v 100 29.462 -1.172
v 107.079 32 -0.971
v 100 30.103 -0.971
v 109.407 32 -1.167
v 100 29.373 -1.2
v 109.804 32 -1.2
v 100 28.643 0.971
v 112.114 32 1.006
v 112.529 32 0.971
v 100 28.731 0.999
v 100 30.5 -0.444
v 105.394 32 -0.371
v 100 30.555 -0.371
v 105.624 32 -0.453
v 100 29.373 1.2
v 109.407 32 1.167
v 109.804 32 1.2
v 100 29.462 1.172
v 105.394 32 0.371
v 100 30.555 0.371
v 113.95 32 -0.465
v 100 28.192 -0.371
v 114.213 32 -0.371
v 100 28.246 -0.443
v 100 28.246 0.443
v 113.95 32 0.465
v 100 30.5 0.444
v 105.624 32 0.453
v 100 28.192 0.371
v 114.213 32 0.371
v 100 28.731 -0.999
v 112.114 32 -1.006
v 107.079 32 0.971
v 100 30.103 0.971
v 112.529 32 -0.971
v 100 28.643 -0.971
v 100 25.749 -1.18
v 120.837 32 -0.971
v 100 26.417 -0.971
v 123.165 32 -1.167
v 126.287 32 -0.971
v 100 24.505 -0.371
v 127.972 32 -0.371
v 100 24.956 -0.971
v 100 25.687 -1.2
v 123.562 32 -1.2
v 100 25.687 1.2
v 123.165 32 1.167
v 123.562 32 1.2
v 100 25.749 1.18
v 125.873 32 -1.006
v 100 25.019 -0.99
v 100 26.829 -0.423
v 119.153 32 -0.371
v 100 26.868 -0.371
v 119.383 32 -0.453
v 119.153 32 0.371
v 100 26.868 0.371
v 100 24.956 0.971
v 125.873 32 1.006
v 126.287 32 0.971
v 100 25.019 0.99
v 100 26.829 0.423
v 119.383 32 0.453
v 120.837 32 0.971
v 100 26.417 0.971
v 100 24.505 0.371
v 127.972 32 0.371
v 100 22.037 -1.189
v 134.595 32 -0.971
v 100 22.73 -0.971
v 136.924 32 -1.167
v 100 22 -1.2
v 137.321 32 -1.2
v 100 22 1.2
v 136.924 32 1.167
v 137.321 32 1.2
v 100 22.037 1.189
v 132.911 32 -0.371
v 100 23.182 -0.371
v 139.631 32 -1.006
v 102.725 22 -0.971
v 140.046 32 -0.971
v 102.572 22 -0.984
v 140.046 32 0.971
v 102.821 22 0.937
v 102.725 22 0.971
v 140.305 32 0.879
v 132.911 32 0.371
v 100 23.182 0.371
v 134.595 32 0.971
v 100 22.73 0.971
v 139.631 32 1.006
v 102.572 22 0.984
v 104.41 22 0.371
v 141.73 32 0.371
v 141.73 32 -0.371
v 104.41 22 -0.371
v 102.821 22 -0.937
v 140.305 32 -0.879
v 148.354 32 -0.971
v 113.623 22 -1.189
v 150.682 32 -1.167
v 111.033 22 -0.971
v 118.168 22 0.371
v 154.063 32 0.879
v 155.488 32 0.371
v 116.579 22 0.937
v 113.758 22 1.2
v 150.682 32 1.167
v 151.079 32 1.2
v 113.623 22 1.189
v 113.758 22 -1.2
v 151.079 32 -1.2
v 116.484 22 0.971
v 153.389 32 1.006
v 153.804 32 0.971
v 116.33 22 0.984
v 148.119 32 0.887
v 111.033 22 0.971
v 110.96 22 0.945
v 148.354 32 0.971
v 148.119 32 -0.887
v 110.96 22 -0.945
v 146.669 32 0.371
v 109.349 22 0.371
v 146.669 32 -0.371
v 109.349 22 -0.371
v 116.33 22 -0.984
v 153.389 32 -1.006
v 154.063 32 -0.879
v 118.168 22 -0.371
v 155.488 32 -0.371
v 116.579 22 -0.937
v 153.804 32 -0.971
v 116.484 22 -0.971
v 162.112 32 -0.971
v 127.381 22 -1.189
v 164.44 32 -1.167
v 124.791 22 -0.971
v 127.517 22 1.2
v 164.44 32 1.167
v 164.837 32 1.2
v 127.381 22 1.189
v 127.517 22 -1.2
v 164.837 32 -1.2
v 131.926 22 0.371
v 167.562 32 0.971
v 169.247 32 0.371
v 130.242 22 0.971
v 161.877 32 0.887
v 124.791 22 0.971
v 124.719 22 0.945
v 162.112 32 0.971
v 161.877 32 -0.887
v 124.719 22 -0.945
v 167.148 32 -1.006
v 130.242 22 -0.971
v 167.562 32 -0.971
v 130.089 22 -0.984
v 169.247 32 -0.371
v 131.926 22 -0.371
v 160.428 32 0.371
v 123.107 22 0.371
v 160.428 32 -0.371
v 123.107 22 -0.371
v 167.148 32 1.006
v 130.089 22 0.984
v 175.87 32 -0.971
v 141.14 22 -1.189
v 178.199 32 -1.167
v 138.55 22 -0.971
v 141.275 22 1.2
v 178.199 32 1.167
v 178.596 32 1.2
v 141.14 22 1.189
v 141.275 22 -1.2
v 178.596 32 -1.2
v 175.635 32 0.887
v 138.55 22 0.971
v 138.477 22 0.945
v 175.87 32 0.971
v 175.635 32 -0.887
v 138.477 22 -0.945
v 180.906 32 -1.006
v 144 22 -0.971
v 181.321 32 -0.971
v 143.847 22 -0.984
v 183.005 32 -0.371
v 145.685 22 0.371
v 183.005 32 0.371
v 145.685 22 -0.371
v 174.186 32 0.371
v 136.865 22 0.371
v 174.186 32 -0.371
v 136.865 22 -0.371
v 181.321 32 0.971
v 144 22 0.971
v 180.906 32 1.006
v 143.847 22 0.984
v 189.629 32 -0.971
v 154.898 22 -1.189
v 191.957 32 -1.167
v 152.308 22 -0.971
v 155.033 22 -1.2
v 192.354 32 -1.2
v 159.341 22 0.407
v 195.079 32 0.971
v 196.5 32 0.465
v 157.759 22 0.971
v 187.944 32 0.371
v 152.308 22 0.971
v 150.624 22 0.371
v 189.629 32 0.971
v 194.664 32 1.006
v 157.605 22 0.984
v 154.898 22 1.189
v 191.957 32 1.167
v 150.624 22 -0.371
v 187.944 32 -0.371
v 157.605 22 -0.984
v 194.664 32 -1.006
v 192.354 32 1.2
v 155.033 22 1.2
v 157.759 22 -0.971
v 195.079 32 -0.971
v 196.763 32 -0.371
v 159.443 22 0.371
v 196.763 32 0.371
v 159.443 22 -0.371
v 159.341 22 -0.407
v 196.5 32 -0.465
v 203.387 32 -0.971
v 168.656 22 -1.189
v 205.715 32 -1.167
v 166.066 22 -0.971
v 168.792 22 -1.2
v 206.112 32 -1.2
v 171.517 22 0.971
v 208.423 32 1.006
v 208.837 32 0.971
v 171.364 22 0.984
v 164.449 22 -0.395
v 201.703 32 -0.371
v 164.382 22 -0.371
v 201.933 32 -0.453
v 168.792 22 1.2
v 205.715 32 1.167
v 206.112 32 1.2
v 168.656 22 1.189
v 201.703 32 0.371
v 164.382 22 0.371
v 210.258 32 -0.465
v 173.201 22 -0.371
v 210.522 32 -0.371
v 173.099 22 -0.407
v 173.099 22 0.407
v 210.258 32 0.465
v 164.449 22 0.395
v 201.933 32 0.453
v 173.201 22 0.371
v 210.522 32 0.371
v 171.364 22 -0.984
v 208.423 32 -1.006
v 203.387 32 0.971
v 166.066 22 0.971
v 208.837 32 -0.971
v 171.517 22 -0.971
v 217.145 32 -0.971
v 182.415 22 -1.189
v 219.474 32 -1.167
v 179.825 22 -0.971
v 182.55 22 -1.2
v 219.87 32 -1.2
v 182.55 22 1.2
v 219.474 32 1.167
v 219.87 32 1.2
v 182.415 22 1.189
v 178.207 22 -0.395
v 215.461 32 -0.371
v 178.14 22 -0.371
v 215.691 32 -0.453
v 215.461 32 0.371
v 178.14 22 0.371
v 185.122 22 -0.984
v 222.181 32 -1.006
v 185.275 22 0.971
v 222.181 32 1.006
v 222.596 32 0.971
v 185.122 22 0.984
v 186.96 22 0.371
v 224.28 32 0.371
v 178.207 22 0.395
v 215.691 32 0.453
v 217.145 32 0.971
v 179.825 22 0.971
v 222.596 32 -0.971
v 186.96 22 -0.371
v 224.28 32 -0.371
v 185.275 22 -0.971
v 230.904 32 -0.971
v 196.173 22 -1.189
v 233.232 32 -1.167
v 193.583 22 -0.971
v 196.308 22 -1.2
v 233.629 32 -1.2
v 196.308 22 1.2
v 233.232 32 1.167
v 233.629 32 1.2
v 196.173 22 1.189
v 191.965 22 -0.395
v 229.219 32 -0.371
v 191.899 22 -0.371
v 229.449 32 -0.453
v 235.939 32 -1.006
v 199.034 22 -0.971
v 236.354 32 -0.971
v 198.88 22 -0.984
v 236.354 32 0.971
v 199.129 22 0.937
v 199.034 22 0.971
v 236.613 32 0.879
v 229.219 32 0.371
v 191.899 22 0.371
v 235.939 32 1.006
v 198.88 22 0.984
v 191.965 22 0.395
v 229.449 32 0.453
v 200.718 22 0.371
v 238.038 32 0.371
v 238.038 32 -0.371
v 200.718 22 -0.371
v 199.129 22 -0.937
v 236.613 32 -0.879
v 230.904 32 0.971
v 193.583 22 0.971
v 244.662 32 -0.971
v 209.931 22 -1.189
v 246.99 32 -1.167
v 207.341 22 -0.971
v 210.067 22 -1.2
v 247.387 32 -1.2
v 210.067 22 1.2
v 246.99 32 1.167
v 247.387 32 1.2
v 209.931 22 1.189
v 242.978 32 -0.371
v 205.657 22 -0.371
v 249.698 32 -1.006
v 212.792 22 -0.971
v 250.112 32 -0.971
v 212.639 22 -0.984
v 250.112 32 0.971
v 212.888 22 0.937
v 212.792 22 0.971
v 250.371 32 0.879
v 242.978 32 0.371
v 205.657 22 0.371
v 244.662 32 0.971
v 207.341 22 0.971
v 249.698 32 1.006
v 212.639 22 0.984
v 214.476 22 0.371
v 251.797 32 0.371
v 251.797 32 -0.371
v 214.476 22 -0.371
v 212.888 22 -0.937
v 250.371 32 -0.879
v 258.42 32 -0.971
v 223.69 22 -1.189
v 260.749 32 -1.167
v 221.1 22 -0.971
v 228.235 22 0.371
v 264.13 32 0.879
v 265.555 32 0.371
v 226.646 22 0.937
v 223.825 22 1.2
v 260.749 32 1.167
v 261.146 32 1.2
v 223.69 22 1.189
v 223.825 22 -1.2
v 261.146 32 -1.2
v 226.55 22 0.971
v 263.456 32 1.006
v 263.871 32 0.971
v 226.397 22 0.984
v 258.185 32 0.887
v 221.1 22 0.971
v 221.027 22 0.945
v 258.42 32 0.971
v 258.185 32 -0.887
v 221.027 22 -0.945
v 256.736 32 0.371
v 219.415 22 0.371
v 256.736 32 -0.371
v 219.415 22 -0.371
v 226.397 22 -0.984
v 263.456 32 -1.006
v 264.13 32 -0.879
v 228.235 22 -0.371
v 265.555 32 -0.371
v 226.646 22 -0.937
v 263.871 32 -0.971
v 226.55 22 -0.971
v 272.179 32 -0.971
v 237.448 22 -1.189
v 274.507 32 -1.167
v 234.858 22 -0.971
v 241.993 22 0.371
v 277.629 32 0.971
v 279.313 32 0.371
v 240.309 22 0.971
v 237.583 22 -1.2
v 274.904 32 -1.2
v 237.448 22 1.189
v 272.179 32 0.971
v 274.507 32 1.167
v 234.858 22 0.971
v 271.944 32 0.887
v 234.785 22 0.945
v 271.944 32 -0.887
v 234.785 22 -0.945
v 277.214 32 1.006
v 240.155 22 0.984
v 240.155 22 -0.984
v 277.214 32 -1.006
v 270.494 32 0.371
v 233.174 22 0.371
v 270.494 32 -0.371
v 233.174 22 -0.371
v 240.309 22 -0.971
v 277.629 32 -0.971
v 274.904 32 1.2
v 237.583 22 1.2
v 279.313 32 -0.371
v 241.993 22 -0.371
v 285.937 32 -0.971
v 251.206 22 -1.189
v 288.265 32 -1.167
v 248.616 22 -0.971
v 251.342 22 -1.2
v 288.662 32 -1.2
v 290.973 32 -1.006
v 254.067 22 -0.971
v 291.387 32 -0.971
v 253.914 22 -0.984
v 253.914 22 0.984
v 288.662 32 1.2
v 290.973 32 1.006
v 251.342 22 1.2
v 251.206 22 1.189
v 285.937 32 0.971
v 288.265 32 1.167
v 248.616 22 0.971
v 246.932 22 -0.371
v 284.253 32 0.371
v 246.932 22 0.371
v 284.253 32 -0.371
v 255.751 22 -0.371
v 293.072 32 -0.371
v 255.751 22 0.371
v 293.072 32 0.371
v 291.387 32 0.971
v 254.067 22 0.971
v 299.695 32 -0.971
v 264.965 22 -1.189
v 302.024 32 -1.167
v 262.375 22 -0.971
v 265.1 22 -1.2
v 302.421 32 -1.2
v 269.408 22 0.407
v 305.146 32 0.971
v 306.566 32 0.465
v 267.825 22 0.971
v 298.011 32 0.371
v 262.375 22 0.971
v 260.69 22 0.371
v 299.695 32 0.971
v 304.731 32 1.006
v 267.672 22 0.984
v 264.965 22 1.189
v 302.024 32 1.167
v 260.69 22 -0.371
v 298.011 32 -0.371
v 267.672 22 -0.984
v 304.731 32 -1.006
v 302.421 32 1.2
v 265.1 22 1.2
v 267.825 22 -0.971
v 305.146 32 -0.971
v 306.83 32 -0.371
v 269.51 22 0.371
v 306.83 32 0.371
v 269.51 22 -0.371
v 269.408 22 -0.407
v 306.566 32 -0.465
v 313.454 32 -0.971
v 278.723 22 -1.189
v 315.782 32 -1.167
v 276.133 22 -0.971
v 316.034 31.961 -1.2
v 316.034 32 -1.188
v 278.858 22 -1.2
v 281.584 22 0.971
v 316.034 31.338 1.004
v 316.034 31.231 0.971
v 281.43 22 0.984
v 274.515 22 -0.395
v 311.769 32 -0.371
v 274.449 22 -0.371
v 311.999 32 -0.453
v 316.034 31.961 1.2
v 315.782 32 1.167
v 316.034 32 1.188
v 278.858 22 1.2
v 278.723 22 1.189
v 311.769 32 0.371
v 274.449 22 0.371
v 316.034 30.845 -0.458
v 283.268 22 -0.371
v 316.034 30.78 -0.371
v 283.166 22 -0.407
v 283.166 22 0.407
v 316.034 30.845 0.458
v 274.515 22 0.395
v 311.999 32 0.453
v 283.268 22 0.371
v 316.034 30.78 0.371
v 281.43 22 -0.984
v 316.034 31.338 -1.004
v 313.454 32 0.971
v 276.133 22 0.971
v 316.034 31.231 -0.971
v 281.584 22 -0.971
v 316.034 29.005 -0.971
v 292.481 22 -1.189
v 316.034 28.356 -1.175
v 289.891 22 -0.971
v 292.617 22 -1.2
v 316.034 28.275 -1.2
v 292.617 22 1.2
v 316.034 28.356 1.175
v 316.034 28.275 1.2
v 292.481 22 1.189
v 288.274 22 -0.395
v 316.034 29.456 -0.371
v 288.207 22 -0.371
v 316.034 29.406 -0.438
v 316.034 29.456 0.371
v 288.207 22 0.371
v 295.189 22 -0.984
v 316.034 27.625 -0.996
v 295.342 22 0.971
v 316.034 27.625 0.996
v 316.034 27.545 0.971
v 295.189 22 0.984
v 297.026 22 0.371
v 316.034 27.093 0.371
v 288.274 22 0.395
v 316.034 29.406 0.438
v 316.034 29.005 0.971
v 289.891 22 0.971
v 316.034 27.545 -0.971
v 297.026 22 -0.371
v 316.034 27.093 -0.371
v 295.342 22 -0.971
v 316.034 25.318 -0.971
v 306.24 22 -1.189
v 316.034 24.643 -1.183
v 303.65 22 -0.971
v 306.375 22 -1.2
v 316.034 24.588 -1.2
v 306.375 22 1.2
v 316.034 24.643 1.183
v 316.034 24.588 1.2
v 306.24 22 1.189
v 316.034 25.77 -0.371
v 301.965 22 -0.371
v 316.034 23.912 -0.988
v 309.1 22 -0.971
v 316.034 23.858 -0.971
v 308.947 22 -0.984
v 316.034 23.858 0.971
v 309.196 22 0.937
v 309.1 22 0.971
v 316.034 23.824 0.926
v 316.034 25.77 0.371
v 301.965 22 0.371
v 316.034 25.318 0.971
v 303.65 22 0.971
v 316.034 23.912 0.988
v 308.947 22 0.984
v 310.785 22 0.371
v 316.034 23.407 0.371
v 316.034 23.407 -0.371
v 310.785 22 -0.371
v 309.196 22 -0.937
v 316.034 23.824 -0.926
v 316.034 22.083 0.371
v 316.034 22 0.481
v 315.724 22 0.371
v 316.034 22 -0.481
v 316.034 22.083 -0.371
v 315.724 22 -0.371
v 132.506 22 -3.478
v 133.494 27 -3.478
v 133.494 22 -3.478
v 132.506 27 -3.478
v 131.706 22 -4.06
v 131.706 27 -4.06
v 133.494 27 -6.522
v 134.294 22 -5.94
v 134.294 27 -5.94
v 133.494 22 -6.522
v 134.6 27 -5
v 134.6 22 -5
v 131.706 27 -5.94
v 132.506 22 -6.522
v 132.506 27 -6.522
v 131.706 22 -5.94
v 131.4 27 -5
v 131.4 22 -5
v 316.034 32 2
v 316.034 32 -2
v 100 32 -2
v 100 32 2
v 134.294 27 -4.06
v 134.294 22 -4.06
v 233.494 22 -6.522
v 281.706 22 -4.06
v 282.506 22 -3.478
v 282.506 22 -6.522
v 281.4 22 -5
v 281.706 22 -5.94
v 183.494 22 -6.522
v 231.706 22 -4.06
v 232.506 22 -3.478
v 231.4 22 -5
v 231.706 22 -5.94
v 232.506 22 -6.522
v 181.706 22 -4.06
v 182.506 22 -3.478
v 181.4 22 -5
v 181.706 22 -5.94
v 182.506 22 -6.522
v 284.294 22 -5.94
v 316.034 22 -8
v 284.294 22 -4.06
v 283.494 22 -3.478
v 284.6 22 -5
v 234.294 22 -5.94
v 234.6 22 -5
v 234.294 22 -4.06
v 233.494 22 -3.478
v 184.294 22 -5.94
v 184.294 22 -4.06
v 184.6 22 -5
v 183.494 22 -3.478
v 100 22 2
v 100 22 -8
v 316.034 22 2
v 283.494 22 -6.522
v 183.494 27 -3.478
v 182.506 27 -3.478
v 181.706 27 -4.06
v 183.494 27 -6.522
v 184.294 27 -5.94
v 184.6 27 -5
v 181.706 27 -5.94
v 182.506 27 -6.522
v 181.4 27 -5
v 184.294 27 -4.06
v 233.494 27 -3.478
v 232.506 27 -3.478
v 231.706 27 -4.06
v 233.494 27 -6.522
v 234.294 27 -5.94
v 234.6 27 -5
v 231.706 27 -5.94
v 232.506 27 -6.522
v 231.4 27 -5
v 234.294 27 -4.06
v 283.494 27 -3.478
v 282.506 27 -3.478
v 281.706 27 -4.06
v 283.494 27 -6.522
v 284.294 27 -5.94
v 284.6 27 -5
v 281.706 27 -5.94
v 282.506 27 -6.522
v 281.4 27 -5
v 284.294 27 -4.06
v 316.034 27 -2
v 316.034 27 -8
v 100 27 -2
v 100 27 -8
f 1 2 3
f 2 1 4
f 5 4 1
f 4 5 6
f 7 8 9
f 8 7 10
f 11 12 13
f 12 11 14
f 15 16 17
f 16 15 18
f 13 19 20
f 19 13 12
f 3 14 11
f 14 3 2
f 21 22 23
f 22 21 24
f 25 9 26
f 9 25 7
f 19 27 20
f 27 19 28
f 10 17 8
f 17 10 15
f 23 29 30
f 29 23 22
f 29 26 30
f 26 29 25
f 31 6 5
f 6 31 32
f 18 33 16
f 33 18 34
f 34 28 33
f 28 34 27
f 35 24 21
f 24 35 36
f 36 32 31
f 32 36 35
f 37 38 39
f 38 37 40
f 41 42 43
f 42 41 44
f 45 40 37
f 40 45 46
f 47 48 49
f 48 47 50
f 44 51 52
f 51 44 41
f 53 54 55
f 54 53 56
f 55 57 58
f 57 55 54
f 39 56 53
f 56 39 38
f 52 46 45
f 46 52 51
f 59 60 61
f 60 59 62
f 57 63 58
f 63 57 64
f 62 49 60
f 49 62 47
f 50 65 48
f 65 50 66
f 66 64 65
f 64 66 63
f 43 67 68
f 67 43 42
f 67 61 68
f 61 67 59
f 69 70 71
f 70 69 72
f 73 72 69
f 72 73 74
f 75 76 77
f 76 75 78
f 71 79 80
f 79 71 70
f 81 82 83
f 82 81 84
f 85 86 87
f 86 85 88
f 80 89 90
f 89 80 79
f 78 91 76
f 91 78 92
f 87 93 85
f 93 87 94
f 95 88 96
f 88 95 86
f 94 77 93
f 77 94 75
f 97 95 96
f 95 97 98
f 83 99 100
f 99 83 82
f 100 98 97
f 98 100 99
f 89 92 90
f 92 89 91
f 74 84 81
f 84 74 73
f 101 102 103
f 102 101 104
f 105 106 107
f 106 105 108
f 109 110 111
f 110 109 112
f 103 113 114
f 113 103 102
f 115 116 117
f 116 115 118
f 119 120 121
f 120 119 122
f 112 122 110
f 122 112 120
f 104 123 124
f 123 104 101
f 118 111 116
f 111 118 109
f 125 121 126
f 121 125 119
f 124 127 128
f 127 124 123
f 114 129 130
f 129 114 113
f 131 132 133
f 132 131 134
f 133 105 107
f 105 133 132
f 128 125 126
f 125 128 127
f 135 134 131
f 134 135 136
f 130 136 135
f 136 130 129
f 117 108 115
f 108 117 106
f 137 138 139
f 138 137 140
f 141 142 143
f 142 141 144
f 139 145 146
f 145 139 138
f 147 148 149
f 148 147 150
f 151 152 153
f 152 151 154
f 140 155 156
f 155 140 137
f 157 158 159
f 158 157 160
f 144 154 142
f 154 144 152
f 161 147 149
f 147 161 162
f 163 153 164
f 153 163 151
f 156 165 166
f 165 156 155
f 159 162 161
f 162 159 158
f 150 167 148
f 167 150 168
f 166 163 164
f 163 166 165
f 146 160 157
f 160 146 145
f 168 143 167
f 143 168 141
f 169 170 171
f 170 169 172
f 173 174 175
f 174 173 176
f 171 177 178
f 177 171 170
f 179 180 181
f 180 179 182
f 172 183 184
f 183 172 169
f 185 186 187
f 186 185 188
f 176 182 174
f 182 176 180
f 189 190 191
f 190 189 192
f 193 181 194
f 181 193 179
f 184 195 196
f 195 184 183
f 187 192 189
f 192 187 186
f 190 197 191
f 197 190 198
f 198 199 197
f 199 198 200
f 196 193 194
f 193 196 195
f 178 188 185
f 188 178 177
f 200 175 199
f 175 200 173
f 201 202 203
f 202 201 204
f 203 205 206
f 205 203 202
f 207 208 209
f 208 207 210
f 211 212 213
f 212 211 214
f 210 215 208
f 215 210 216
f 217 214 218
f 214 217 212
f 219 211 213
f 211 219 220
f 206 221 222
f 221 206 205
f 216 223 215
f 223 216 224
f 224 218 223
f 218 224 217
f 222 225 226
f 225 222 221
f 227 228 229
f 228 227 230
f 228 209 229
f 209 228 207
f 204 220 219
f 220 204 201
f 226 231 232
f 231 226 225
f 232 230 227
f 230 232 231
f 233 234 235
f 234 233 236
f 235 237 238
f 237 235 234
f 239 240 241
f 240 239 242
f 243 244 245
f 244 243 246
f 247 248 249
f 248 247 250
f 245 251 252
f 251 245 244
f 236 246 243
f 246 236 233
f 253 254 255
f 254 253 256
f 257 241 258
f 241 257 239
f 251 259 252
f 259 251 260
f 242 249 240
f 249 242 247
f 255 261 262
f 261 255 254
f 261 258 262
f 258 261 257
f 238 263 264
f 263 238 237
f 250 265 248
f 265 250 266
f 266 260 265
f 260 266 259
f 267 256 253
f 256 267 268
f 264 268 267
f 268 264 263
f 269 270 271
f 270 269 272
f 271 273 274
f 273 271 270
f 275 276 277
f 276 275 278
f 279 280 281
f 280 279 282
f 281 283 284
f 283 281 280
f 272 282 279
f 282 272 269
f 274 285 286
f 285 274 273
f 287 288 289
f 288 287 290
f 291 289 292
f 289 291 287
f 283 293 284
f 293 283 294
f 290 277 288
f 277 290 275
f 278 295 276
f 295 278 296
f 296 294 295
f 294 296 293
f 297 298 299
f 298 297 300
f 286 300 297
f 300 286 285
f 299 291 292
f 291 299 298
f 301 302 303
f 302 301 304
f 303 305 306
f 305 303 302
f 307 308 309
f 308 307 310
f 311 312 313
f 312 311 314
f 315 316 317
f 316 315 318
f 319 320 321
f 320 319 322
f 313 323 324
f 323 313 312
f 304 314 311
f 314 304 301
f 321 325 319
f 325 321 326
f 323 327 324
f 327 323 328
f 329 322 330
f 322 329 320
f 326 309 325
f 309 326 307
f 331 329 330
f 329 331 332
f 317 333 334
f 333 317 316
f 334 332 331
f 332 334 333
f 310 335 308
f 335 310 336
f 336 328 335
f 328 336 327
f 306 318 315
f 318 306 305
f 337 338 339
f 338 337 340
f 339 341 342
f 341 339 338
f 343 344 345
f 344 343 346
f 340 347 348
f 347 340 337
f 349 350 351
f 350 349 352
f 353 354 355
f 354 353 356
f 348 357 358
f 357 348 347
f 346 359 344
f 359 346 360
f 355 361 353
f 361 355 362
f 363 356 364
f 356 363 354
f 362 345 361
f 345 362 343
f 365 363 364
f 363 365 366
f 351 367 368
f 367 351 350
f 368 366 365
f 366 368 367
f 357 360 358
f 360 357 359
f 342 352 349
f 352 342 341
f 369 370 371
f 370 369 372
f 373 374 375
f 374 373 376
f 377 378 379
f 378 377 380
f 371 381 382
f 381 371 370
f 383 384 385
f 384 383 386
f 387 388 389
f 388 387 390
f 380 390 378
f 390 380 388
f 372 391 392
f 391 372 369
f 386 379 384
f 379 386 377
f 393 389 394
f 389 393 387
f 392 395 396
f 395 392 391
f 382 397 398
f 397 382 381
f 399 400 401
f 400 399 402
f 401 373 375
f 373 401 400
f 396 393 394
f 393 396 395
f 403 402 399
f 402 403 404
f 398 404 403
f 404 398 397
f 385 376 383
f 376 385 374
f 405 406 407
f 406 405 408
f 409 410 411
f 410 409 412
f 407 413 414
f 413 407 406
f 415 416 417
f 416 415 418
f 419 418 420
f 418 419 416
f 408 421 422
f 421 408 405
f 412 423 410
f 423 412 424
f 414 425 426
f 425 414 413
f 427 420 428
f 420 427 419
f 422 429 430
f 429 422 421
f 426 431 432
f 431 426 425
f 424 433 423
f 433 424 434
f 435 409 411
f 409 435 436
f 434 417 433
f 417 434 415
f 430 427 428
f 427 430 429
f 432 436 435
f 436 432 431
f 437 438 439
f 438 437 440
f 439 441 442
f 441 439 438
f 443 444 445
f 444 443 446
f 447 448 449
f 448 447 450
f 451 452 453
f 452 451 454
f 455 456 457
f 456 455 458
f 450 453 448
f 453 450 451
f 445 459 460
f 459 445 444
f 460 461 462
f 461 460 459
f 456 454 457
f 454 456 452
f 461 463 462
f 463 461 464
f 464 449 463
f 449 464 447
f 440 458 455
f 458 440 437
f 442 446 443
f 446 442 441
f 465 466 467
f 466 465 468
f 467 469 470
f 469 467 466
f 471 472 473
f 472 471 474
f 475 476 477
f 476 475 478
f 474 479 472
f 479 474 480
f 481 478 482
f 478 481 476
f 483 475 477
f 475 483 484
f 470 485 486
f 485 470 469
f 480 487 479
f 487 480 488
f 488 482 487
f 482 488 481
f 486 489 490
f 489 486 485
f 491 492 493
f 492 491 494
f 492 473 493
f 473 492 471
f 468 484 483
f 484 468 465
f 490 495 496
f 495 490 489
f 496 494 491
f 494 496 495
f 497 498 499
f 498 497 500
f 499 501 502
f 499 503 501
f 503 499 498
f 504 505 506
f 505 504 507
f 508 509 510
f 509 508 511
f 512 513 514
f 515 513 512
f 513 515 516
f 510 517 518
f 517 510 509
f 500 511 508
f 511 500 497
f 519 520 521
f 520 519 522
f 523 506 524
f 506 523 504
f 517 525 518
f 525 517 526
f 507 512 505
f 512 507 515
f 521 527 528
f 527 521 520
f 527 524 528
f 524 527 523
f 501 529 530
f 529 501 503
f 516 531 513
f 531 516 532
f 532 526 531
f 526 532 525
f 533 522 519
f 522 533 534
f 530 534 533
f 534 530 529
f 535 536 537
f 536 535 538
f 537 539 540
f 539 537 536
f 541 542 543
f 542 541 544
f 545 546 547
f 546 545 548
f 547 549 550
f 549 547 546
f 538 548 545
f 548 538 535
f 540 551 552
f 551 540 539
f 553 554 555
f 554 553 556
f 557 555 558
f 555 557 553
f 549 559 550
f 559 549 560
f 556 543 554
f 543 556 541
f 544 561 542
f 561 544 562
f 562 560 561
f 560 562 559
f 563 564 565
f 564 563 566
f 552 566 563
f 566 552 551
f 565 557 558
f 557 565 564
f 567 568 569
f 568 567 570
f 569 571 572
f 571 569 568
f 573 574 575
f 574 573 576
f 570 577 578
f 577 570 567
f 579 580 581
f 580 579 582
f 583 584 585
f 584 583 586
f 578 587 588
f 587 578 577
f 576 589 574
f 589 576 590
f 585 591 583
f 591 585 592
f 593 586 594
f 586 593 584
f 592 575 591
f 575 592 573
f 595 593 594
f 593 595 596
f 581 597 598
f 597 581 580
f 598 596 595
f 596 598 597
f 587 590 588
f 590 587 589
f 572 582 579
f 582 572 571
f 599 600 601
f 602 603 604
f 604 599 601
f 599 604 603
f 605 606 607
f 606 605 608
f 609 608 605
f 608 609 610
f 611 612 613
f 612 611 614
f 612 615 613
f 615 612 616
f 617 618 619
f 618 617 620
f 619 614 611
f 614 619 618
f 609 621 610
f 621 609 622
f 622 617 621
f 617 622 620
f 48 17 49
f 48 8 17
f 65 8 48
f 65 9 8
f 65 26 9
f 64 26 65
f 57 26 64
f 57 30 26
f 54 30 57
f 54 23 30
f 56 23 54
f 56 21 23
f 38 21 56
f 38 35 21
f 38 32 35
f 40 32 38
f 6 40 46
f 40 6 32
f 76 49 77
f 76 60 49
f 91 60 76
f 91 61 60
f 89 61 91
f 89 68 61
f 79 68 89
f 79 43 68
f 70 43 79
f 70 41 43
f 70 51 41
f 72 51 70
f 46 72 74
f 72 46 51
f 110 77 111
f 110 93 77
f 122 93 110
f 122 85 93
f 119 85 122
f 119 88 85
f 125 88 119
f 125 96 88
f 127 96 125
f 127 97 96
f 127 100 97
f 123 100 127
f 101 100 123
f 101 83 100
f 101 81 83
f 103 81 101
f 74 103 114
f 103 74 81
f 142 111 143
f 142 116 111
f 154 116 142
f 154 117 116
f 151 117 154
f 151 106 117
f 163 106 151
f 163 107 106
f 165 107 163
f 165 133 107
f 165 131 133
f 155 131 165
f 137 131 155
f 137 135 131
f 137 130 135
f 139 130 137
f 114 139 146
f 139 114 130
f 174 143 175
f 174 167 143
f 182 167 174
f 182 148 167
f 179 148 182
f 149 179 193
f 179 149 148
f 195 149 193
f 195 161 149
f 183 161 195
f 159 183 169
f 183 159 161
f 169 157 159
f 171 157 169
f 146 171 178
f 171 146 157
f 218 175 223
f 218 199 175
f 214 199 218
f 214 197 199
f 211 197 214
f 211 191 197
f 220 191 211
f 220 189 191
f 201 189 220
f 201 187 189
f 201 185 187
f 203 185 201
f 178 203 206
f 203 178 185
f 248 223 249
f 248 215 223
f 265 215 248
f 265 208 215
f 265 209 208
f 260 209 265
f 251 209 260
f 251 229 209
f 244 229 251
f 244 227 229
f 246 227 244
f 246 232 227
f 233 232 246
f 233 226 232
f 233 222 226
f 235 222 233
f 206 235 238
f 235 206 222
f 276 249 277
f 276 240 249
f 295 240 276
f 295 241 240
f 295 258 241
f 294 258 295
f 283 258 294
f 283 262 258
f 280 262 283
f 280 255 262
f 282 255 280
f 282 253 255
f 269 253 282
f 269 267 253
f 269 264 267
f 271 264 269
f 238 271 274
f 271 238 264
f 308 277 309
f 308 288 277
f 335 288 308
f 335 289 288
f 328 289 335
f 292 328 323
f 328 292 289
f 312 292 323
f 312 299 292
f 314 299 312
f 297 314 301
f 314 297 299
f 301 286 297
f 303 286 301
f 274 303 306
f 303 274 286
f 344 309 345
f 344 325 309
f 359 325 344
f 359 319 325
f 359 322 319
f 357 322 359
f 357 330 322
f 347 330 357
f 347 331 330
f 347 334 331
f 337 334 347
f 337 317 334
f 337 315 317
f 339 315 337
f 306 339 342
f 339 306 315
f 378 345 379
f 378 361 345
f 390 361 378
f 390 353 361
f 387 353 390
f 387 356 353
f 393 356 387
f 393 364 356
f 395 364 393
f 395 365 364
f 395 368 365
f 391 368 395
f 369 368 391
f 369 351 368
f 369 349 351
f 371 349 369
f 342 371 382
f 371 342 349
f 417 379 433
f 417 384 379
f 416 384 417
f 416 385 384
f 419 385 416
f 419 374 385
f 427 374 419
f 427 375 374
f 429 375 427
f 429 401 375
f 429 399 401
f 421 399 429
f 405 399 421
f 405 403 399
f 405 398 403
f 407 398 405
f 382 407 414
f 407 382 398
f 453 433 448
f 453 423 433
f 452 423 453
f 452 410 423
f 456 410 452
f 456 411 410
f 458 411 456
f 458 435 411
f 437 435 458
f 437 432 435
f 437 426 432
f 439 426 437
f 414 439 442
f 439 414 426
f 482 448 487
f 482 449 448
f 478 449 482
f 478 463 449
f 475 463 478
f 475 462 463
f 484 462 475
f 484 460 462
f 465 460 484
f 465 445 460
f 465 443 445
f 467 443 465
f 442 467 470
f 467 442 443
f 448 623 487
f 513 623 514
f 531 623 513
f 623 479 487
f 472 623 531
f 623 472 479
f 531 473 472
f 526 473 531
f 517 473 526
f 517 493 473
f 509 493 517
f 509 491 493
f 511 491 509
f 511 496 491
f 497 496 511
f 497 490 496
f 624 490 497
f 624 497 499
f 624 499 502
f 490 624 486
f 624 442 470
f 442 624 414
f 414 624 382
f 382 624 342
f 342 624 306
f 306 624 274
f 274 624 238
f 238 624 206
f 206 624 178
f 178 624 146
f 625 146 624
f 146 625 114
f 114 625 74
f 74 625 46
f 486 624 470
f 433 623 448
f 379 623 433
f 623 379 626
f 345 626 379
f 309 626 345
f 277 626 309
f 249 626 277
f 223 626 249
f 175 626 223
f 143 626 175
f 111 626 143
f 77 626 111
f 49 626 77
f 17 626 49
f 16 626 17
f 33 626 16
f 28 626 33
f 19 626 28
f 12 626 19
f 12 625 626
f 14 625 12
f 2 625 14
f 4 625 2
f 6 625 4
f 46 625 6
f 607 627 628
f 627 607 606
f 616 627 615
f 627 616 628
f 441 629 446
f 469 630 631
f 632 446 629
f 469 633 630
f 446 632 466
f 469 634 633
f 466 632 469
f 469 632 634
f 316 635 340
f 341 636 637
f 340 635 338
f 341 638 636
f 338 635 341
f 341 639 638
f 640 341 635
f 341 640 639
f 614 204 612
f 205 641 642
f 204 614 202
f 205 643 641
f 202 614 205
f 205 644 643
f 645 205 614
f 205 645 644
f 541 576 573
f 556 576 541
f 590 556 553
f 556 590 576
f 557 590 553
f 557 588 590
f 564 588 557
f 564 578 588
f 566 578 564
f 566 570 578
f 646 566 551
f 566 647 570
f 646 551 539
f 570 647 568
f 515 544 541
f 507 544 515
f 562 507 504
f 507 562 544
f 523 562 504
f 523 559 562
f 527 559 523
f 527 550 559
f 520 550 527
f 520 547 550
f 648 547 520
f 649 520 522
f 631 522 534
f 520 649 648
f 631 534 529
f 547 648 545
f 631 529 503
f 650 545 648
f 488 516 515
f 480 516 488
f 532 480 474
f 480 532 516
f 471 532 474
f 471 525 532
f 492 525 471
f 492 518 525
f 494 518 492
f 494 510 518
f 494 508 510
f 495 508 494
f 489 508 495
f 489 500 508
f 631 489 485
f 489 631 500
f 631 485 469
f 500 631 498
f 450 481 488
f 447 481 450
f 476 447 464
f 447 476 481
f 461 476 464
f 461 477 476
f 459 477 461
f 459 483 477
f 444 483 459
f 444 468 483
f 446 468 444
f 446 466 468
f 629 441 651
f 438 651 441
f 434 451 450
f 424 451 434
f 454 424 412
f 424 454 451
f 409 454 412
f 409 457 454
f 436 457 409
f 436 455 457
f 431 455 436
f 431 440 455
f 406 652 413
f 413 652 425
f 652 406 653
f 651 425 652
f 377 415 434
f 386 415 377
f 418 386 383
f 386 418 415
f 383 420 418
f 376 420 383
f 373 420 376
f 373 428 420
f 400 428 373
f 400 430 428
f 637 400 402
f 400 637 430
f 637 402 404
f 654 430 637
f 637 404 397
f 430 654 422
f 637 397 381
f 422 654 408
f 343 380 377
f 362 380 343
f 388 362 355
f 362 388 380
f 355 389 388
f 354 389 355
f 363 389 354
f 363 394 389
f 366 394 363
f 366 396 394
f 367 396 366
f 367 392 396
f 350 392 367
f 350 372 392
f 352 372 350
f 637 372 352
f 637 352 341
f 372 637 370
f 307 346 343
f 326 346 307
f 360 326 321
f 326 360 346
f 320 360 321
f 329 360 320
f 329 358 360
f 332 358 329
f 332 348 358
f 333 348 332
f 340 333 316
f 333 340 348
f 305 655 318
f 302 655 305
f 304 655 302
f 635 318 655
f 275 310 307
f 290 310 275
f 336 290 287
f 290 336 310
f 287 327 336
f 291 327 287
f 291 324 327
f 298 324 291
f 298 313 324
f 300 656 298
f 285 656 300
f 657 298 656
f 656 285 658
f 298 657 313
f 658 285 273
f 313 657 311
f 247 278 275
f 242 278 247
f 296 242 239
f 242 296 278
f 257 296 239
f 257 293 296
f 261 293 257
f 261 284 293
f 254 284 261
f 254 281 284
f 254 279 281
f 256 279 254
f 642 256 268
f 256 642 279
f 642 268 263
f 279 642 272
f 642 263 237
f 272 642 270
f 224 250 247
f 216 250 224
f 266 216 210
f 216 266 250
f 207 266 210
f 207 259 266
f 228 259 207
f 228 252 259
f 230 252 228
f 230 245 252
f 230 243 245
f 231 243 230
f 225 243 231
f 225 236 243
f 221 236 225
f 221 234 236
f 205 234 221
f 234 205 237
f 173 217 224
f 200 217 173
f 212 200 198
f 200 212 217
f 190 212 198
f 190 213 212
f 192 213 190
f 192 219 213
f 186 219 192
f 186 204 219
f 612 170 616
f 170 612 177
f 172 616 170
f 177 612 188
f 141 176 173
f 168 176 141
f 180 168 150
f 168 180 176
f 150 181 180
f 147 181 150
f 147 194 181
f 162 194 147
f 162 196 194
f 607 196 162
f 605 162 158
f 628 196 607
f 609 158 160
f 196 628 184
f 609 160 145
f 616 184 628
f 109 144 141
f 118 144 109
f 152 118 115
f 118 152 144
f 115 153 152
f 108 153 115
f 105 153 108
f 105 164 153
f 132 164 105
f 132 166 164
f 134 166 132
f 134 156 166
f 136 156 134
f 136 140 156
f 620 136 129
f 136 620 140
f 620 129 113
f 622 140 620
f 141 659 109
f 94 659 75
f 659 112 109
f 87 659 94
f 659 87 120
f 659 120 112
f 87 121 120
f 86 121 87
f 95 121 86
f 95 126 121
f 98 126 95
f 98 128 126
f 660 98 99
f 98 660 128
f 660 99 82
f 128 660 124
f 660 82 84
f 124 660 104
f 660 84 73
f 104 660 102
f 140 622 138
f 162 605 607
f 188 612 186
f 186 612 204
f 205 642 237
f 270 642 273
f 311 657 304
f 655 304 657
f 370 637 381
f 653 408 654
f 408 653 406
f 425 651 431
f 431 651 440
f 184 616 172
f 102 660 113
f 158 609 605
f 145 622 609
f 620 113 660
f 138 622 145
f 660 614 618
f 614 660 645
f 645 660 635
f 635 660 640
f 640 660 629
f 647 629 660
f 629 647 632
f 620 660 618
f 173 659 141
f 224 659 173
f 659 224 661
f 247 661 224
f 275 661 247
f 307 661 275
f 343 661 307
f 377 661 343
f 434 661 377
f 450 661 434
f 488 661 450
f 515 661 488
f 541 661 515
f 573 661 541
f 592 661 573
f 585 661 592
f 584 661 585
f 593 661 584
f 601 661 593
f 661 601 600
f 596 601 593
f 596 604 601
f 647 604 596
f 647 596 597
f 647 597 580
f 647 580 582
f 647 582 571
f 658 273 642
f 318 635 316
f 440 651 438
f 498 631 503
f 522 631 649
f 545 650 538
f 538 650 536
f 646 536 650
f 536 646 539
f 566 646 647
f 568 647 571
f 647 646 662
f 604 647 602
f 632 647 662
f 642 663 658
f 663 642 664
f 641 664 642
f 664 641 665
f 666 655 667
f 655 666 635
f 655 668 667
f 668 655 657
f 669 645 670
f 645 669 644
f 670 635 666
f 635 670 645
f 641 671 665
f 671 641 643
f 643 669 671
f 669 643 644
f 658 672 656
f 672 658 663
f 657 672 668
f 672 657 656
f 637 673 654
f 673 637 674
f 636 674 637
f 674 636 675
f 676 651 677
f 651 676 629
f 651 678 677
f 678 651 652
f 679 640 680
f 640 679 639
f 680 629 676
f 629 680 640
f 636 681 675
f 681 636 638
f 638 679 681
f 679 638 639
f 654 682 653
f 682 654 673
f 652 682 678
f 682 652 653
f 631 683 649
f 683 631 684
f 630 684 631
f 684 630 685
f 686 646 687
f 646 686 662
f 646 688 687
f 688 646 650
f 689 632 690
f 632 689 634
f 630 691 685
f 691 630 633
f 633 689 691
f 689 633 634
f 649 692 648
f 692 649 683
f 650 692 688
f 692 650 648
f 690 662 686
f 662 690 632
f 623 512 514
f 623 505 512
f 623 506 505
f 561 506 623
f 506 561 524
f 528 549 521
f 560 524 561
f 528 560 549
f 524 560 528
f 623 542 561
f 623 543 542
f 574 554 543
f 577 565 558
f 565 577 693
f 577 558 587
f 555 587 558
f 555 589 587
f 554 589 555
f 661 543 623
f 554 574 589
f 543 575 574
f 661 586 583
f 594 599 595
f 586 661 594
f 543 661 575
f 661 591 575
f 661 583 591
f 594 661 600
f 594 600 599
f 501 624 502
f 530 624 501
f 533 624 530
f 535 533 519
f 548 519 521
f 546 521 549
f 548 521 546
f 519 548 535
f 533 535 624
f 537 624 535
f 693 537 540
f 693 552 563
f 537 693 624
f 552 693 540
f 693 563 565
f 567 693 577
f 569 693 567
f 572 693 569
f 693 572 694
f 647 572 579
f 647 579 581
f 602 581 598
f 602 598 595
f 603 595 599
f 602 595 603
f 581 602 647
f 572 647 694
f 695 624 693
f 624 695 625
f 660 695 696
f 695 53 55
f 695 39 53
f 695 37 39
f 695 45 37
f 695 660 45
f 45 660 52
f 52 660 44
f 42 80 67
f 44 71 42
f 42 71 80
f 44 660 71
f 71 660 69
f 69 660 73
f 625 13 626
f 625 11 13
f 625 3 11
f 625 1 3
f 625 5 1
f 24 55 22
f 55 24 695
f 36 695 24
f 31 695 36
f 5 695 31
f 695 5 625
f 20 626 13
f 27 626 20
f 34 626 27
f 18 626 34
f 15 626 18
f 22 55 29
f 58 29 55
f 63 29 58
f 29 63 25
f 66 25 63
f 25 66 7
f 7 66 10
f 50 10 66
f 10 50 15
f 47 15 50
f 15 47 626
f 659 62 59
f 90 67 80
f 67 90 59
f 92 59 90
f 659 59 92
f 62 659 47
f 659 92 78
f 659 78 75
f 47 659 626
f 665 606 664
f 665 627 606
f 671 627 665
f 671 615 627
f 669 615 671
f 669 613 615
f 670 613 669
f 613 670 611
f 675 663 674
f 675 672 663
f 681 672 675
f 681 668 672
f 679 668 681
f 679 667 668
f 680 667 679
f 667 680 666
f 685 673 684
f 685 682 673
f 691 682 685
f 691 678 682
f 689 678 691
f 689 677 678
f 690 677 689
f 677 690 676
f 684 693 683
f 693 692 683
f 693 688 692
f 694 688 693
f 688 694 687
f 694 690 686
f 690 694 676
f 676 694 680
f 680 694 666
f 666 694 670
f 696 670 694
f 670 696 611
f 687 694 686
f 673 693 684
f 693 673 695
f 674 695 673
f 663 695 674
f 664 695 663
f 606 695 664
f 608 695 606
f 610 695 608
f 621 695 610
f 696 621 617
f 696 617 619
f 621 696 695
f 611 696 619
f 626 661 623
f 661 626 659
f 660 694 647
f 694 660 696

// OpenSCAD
$fn = 10;
keySp = 6.5 * 25.4 / 12;
strSkew = 15;
nStrings = 15;
strSp = keySp * sin(strSkew);
eaton15w = 134;
eatonSkew = 90 + strSkew + acos(strSp/(eaton15w/15));

fullGang();
//translate([25.4*6.5*15/12,0,0]) fullGang();
//translate([25.4*13*15/12,0,0]) fullGang();

module eatonStrip15(){
    cube([143,8,12.5]);
}

module stringSet(){
    for (i=[-2:17]){
        //translate([i*keySp,0,0]) rotate([0,90,15]) translate([0,0,-20]) cylinder(400,0.8,0.8);
        translate([i*keySp,0,0]) rotate([0,90,15]) translate([0,0,-20]) cylinder(400,1.2,1.2);
    }
};

module algnGuides(){
    difference(){
        translate([0,0,-8]) cube([keySp*nStrings+10*cos(strSkew),10,10]);
        union(){
            stringSet();
            translate([0,5,-9]) cube([keySp*nStrings+10*cos(strSkew),10-5,10-3]);
            for (x=[1:4]){
                translate([x*50-17,0,-5]) rotate([-90,0,0]) cylinder(10,1.6,1.6);
                //translate([x*50-17,0,-5]) rotate([-90,0,0]) cylinder(10,3.0,3.0);
            }
        }
    }
}

module fullGang(){
 //   translate([205,0,0]) rotate([0,0,eatonSkew]) eatonStrip15();
//translate([0,0,0]) rotate([0,0,-8.5]) eatonStrip15();
//stringSet();
translate([100,22,0]) algnGuides();
}
